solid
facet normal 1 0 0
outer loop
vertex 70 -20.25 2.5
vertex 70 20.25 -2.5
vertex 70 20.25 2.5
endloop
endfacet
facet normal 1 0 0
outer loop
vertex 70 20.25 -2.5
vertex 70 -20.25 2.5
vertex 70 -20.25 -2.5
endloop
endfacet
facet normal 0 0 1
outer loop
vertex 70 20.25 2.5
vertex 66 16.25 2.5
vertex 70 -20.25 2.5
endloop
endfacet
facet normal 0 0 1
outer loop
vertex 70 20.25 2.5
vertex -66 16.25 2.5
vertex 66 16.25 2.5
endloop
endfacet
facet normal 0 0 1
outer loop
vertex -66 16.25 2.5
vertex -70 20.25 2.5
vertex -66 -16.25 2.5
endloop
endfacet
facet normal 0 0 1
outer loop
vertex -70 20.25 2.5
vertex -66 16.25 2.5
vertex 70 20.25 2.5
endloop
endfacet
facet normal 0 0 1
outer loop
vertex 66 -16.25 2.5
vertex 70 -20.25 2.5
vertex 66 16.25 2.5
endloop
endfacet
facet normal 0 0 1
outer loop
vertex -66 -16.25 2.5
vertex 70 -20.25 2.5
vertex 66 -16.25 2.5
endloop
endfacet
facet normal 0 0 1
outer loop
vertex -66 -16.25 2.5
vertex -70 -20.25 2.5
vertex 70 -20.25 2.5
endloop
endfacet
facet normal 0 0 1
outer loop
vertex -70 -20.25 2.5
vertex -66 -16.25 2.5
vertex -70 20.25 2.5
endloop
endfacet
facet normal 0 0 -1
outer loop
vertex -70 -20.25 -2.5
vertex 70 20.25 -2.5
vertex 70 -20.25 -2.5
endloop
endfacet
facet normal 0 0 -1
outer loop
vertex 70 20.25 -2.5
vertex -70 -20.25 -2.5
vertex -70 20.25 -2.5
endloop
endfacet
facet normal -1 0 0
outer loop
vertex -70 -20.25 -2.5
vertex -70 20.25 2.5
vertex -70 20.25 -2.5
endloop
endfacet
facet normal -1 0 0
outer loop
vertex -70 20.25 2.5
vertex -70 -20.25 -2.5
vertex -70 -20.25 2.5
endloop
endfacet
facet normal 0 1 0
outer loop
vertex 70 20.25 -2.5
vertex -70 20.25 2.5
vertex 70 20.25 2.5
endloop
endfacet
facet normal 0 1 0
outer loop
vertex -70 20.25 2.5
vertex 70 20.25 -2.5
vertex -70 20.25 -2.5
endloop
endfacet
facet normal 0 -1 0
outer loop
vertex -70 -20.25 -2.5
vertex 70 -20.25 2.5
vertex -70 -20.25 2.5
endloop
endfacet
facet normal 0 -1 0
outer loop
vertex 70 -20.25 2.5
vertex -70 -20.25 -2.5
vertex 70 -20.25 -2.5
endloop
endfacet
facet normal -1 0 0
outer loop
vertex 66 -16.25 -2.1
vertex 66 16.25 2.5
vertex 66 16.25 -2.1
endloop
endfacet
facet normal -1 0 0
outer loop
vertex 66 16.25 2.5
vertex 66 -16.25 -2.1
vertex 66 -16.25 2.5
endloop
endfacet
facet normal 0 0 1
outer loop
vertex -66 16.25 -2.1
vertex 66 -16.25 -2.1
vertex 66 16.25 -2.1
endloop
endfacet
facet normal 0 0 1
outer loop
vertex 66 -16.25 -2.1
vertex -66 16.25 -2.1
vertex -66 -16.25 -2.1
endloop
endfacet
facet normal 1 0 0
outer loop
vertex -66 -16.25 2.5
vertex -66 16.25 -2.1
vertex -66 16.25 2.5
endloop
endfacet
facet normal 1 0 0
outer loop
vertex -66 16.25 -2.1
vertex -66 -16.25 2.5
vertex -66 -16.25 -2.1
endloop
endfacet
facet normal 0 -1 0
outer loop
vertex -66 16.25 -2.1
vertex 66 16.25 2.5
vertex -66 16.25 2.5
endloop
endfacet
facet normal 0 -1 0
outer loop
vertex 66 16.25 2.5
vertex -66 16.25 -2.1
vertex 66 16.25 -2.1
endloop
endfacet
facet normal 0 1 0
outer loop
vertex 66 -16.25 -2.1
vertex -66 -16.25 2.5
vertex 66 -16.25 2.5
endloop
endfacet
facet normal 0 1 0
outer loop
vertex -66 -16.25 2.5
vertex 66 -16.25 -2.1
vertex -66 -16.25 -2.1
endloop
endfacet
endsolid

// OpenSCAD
displayX=132;
displayY=32.5;
displayZ=15;
wall=4;

difference()
{
  cube([displayX+2*wall, displayY+2*wall, 5],center=true);
  translate([0,0,0.4])cube([displayX, displayY, 5],center=true);
  //translate([3*displayX/8,0,0.2])cube([displayX/4, displayY, 5],center=true);
  //translate([displayX/8,0,0.4])cube([displayX/4, displayY, 5],center=true);
  //translate([-displayX/8,0,0.8])cube([displayX/4, displayY, 5],center=true);
  //translate([-3*displayX/8,0,1.6])cube([displayX/4, displayY, 5],center=true);
}
